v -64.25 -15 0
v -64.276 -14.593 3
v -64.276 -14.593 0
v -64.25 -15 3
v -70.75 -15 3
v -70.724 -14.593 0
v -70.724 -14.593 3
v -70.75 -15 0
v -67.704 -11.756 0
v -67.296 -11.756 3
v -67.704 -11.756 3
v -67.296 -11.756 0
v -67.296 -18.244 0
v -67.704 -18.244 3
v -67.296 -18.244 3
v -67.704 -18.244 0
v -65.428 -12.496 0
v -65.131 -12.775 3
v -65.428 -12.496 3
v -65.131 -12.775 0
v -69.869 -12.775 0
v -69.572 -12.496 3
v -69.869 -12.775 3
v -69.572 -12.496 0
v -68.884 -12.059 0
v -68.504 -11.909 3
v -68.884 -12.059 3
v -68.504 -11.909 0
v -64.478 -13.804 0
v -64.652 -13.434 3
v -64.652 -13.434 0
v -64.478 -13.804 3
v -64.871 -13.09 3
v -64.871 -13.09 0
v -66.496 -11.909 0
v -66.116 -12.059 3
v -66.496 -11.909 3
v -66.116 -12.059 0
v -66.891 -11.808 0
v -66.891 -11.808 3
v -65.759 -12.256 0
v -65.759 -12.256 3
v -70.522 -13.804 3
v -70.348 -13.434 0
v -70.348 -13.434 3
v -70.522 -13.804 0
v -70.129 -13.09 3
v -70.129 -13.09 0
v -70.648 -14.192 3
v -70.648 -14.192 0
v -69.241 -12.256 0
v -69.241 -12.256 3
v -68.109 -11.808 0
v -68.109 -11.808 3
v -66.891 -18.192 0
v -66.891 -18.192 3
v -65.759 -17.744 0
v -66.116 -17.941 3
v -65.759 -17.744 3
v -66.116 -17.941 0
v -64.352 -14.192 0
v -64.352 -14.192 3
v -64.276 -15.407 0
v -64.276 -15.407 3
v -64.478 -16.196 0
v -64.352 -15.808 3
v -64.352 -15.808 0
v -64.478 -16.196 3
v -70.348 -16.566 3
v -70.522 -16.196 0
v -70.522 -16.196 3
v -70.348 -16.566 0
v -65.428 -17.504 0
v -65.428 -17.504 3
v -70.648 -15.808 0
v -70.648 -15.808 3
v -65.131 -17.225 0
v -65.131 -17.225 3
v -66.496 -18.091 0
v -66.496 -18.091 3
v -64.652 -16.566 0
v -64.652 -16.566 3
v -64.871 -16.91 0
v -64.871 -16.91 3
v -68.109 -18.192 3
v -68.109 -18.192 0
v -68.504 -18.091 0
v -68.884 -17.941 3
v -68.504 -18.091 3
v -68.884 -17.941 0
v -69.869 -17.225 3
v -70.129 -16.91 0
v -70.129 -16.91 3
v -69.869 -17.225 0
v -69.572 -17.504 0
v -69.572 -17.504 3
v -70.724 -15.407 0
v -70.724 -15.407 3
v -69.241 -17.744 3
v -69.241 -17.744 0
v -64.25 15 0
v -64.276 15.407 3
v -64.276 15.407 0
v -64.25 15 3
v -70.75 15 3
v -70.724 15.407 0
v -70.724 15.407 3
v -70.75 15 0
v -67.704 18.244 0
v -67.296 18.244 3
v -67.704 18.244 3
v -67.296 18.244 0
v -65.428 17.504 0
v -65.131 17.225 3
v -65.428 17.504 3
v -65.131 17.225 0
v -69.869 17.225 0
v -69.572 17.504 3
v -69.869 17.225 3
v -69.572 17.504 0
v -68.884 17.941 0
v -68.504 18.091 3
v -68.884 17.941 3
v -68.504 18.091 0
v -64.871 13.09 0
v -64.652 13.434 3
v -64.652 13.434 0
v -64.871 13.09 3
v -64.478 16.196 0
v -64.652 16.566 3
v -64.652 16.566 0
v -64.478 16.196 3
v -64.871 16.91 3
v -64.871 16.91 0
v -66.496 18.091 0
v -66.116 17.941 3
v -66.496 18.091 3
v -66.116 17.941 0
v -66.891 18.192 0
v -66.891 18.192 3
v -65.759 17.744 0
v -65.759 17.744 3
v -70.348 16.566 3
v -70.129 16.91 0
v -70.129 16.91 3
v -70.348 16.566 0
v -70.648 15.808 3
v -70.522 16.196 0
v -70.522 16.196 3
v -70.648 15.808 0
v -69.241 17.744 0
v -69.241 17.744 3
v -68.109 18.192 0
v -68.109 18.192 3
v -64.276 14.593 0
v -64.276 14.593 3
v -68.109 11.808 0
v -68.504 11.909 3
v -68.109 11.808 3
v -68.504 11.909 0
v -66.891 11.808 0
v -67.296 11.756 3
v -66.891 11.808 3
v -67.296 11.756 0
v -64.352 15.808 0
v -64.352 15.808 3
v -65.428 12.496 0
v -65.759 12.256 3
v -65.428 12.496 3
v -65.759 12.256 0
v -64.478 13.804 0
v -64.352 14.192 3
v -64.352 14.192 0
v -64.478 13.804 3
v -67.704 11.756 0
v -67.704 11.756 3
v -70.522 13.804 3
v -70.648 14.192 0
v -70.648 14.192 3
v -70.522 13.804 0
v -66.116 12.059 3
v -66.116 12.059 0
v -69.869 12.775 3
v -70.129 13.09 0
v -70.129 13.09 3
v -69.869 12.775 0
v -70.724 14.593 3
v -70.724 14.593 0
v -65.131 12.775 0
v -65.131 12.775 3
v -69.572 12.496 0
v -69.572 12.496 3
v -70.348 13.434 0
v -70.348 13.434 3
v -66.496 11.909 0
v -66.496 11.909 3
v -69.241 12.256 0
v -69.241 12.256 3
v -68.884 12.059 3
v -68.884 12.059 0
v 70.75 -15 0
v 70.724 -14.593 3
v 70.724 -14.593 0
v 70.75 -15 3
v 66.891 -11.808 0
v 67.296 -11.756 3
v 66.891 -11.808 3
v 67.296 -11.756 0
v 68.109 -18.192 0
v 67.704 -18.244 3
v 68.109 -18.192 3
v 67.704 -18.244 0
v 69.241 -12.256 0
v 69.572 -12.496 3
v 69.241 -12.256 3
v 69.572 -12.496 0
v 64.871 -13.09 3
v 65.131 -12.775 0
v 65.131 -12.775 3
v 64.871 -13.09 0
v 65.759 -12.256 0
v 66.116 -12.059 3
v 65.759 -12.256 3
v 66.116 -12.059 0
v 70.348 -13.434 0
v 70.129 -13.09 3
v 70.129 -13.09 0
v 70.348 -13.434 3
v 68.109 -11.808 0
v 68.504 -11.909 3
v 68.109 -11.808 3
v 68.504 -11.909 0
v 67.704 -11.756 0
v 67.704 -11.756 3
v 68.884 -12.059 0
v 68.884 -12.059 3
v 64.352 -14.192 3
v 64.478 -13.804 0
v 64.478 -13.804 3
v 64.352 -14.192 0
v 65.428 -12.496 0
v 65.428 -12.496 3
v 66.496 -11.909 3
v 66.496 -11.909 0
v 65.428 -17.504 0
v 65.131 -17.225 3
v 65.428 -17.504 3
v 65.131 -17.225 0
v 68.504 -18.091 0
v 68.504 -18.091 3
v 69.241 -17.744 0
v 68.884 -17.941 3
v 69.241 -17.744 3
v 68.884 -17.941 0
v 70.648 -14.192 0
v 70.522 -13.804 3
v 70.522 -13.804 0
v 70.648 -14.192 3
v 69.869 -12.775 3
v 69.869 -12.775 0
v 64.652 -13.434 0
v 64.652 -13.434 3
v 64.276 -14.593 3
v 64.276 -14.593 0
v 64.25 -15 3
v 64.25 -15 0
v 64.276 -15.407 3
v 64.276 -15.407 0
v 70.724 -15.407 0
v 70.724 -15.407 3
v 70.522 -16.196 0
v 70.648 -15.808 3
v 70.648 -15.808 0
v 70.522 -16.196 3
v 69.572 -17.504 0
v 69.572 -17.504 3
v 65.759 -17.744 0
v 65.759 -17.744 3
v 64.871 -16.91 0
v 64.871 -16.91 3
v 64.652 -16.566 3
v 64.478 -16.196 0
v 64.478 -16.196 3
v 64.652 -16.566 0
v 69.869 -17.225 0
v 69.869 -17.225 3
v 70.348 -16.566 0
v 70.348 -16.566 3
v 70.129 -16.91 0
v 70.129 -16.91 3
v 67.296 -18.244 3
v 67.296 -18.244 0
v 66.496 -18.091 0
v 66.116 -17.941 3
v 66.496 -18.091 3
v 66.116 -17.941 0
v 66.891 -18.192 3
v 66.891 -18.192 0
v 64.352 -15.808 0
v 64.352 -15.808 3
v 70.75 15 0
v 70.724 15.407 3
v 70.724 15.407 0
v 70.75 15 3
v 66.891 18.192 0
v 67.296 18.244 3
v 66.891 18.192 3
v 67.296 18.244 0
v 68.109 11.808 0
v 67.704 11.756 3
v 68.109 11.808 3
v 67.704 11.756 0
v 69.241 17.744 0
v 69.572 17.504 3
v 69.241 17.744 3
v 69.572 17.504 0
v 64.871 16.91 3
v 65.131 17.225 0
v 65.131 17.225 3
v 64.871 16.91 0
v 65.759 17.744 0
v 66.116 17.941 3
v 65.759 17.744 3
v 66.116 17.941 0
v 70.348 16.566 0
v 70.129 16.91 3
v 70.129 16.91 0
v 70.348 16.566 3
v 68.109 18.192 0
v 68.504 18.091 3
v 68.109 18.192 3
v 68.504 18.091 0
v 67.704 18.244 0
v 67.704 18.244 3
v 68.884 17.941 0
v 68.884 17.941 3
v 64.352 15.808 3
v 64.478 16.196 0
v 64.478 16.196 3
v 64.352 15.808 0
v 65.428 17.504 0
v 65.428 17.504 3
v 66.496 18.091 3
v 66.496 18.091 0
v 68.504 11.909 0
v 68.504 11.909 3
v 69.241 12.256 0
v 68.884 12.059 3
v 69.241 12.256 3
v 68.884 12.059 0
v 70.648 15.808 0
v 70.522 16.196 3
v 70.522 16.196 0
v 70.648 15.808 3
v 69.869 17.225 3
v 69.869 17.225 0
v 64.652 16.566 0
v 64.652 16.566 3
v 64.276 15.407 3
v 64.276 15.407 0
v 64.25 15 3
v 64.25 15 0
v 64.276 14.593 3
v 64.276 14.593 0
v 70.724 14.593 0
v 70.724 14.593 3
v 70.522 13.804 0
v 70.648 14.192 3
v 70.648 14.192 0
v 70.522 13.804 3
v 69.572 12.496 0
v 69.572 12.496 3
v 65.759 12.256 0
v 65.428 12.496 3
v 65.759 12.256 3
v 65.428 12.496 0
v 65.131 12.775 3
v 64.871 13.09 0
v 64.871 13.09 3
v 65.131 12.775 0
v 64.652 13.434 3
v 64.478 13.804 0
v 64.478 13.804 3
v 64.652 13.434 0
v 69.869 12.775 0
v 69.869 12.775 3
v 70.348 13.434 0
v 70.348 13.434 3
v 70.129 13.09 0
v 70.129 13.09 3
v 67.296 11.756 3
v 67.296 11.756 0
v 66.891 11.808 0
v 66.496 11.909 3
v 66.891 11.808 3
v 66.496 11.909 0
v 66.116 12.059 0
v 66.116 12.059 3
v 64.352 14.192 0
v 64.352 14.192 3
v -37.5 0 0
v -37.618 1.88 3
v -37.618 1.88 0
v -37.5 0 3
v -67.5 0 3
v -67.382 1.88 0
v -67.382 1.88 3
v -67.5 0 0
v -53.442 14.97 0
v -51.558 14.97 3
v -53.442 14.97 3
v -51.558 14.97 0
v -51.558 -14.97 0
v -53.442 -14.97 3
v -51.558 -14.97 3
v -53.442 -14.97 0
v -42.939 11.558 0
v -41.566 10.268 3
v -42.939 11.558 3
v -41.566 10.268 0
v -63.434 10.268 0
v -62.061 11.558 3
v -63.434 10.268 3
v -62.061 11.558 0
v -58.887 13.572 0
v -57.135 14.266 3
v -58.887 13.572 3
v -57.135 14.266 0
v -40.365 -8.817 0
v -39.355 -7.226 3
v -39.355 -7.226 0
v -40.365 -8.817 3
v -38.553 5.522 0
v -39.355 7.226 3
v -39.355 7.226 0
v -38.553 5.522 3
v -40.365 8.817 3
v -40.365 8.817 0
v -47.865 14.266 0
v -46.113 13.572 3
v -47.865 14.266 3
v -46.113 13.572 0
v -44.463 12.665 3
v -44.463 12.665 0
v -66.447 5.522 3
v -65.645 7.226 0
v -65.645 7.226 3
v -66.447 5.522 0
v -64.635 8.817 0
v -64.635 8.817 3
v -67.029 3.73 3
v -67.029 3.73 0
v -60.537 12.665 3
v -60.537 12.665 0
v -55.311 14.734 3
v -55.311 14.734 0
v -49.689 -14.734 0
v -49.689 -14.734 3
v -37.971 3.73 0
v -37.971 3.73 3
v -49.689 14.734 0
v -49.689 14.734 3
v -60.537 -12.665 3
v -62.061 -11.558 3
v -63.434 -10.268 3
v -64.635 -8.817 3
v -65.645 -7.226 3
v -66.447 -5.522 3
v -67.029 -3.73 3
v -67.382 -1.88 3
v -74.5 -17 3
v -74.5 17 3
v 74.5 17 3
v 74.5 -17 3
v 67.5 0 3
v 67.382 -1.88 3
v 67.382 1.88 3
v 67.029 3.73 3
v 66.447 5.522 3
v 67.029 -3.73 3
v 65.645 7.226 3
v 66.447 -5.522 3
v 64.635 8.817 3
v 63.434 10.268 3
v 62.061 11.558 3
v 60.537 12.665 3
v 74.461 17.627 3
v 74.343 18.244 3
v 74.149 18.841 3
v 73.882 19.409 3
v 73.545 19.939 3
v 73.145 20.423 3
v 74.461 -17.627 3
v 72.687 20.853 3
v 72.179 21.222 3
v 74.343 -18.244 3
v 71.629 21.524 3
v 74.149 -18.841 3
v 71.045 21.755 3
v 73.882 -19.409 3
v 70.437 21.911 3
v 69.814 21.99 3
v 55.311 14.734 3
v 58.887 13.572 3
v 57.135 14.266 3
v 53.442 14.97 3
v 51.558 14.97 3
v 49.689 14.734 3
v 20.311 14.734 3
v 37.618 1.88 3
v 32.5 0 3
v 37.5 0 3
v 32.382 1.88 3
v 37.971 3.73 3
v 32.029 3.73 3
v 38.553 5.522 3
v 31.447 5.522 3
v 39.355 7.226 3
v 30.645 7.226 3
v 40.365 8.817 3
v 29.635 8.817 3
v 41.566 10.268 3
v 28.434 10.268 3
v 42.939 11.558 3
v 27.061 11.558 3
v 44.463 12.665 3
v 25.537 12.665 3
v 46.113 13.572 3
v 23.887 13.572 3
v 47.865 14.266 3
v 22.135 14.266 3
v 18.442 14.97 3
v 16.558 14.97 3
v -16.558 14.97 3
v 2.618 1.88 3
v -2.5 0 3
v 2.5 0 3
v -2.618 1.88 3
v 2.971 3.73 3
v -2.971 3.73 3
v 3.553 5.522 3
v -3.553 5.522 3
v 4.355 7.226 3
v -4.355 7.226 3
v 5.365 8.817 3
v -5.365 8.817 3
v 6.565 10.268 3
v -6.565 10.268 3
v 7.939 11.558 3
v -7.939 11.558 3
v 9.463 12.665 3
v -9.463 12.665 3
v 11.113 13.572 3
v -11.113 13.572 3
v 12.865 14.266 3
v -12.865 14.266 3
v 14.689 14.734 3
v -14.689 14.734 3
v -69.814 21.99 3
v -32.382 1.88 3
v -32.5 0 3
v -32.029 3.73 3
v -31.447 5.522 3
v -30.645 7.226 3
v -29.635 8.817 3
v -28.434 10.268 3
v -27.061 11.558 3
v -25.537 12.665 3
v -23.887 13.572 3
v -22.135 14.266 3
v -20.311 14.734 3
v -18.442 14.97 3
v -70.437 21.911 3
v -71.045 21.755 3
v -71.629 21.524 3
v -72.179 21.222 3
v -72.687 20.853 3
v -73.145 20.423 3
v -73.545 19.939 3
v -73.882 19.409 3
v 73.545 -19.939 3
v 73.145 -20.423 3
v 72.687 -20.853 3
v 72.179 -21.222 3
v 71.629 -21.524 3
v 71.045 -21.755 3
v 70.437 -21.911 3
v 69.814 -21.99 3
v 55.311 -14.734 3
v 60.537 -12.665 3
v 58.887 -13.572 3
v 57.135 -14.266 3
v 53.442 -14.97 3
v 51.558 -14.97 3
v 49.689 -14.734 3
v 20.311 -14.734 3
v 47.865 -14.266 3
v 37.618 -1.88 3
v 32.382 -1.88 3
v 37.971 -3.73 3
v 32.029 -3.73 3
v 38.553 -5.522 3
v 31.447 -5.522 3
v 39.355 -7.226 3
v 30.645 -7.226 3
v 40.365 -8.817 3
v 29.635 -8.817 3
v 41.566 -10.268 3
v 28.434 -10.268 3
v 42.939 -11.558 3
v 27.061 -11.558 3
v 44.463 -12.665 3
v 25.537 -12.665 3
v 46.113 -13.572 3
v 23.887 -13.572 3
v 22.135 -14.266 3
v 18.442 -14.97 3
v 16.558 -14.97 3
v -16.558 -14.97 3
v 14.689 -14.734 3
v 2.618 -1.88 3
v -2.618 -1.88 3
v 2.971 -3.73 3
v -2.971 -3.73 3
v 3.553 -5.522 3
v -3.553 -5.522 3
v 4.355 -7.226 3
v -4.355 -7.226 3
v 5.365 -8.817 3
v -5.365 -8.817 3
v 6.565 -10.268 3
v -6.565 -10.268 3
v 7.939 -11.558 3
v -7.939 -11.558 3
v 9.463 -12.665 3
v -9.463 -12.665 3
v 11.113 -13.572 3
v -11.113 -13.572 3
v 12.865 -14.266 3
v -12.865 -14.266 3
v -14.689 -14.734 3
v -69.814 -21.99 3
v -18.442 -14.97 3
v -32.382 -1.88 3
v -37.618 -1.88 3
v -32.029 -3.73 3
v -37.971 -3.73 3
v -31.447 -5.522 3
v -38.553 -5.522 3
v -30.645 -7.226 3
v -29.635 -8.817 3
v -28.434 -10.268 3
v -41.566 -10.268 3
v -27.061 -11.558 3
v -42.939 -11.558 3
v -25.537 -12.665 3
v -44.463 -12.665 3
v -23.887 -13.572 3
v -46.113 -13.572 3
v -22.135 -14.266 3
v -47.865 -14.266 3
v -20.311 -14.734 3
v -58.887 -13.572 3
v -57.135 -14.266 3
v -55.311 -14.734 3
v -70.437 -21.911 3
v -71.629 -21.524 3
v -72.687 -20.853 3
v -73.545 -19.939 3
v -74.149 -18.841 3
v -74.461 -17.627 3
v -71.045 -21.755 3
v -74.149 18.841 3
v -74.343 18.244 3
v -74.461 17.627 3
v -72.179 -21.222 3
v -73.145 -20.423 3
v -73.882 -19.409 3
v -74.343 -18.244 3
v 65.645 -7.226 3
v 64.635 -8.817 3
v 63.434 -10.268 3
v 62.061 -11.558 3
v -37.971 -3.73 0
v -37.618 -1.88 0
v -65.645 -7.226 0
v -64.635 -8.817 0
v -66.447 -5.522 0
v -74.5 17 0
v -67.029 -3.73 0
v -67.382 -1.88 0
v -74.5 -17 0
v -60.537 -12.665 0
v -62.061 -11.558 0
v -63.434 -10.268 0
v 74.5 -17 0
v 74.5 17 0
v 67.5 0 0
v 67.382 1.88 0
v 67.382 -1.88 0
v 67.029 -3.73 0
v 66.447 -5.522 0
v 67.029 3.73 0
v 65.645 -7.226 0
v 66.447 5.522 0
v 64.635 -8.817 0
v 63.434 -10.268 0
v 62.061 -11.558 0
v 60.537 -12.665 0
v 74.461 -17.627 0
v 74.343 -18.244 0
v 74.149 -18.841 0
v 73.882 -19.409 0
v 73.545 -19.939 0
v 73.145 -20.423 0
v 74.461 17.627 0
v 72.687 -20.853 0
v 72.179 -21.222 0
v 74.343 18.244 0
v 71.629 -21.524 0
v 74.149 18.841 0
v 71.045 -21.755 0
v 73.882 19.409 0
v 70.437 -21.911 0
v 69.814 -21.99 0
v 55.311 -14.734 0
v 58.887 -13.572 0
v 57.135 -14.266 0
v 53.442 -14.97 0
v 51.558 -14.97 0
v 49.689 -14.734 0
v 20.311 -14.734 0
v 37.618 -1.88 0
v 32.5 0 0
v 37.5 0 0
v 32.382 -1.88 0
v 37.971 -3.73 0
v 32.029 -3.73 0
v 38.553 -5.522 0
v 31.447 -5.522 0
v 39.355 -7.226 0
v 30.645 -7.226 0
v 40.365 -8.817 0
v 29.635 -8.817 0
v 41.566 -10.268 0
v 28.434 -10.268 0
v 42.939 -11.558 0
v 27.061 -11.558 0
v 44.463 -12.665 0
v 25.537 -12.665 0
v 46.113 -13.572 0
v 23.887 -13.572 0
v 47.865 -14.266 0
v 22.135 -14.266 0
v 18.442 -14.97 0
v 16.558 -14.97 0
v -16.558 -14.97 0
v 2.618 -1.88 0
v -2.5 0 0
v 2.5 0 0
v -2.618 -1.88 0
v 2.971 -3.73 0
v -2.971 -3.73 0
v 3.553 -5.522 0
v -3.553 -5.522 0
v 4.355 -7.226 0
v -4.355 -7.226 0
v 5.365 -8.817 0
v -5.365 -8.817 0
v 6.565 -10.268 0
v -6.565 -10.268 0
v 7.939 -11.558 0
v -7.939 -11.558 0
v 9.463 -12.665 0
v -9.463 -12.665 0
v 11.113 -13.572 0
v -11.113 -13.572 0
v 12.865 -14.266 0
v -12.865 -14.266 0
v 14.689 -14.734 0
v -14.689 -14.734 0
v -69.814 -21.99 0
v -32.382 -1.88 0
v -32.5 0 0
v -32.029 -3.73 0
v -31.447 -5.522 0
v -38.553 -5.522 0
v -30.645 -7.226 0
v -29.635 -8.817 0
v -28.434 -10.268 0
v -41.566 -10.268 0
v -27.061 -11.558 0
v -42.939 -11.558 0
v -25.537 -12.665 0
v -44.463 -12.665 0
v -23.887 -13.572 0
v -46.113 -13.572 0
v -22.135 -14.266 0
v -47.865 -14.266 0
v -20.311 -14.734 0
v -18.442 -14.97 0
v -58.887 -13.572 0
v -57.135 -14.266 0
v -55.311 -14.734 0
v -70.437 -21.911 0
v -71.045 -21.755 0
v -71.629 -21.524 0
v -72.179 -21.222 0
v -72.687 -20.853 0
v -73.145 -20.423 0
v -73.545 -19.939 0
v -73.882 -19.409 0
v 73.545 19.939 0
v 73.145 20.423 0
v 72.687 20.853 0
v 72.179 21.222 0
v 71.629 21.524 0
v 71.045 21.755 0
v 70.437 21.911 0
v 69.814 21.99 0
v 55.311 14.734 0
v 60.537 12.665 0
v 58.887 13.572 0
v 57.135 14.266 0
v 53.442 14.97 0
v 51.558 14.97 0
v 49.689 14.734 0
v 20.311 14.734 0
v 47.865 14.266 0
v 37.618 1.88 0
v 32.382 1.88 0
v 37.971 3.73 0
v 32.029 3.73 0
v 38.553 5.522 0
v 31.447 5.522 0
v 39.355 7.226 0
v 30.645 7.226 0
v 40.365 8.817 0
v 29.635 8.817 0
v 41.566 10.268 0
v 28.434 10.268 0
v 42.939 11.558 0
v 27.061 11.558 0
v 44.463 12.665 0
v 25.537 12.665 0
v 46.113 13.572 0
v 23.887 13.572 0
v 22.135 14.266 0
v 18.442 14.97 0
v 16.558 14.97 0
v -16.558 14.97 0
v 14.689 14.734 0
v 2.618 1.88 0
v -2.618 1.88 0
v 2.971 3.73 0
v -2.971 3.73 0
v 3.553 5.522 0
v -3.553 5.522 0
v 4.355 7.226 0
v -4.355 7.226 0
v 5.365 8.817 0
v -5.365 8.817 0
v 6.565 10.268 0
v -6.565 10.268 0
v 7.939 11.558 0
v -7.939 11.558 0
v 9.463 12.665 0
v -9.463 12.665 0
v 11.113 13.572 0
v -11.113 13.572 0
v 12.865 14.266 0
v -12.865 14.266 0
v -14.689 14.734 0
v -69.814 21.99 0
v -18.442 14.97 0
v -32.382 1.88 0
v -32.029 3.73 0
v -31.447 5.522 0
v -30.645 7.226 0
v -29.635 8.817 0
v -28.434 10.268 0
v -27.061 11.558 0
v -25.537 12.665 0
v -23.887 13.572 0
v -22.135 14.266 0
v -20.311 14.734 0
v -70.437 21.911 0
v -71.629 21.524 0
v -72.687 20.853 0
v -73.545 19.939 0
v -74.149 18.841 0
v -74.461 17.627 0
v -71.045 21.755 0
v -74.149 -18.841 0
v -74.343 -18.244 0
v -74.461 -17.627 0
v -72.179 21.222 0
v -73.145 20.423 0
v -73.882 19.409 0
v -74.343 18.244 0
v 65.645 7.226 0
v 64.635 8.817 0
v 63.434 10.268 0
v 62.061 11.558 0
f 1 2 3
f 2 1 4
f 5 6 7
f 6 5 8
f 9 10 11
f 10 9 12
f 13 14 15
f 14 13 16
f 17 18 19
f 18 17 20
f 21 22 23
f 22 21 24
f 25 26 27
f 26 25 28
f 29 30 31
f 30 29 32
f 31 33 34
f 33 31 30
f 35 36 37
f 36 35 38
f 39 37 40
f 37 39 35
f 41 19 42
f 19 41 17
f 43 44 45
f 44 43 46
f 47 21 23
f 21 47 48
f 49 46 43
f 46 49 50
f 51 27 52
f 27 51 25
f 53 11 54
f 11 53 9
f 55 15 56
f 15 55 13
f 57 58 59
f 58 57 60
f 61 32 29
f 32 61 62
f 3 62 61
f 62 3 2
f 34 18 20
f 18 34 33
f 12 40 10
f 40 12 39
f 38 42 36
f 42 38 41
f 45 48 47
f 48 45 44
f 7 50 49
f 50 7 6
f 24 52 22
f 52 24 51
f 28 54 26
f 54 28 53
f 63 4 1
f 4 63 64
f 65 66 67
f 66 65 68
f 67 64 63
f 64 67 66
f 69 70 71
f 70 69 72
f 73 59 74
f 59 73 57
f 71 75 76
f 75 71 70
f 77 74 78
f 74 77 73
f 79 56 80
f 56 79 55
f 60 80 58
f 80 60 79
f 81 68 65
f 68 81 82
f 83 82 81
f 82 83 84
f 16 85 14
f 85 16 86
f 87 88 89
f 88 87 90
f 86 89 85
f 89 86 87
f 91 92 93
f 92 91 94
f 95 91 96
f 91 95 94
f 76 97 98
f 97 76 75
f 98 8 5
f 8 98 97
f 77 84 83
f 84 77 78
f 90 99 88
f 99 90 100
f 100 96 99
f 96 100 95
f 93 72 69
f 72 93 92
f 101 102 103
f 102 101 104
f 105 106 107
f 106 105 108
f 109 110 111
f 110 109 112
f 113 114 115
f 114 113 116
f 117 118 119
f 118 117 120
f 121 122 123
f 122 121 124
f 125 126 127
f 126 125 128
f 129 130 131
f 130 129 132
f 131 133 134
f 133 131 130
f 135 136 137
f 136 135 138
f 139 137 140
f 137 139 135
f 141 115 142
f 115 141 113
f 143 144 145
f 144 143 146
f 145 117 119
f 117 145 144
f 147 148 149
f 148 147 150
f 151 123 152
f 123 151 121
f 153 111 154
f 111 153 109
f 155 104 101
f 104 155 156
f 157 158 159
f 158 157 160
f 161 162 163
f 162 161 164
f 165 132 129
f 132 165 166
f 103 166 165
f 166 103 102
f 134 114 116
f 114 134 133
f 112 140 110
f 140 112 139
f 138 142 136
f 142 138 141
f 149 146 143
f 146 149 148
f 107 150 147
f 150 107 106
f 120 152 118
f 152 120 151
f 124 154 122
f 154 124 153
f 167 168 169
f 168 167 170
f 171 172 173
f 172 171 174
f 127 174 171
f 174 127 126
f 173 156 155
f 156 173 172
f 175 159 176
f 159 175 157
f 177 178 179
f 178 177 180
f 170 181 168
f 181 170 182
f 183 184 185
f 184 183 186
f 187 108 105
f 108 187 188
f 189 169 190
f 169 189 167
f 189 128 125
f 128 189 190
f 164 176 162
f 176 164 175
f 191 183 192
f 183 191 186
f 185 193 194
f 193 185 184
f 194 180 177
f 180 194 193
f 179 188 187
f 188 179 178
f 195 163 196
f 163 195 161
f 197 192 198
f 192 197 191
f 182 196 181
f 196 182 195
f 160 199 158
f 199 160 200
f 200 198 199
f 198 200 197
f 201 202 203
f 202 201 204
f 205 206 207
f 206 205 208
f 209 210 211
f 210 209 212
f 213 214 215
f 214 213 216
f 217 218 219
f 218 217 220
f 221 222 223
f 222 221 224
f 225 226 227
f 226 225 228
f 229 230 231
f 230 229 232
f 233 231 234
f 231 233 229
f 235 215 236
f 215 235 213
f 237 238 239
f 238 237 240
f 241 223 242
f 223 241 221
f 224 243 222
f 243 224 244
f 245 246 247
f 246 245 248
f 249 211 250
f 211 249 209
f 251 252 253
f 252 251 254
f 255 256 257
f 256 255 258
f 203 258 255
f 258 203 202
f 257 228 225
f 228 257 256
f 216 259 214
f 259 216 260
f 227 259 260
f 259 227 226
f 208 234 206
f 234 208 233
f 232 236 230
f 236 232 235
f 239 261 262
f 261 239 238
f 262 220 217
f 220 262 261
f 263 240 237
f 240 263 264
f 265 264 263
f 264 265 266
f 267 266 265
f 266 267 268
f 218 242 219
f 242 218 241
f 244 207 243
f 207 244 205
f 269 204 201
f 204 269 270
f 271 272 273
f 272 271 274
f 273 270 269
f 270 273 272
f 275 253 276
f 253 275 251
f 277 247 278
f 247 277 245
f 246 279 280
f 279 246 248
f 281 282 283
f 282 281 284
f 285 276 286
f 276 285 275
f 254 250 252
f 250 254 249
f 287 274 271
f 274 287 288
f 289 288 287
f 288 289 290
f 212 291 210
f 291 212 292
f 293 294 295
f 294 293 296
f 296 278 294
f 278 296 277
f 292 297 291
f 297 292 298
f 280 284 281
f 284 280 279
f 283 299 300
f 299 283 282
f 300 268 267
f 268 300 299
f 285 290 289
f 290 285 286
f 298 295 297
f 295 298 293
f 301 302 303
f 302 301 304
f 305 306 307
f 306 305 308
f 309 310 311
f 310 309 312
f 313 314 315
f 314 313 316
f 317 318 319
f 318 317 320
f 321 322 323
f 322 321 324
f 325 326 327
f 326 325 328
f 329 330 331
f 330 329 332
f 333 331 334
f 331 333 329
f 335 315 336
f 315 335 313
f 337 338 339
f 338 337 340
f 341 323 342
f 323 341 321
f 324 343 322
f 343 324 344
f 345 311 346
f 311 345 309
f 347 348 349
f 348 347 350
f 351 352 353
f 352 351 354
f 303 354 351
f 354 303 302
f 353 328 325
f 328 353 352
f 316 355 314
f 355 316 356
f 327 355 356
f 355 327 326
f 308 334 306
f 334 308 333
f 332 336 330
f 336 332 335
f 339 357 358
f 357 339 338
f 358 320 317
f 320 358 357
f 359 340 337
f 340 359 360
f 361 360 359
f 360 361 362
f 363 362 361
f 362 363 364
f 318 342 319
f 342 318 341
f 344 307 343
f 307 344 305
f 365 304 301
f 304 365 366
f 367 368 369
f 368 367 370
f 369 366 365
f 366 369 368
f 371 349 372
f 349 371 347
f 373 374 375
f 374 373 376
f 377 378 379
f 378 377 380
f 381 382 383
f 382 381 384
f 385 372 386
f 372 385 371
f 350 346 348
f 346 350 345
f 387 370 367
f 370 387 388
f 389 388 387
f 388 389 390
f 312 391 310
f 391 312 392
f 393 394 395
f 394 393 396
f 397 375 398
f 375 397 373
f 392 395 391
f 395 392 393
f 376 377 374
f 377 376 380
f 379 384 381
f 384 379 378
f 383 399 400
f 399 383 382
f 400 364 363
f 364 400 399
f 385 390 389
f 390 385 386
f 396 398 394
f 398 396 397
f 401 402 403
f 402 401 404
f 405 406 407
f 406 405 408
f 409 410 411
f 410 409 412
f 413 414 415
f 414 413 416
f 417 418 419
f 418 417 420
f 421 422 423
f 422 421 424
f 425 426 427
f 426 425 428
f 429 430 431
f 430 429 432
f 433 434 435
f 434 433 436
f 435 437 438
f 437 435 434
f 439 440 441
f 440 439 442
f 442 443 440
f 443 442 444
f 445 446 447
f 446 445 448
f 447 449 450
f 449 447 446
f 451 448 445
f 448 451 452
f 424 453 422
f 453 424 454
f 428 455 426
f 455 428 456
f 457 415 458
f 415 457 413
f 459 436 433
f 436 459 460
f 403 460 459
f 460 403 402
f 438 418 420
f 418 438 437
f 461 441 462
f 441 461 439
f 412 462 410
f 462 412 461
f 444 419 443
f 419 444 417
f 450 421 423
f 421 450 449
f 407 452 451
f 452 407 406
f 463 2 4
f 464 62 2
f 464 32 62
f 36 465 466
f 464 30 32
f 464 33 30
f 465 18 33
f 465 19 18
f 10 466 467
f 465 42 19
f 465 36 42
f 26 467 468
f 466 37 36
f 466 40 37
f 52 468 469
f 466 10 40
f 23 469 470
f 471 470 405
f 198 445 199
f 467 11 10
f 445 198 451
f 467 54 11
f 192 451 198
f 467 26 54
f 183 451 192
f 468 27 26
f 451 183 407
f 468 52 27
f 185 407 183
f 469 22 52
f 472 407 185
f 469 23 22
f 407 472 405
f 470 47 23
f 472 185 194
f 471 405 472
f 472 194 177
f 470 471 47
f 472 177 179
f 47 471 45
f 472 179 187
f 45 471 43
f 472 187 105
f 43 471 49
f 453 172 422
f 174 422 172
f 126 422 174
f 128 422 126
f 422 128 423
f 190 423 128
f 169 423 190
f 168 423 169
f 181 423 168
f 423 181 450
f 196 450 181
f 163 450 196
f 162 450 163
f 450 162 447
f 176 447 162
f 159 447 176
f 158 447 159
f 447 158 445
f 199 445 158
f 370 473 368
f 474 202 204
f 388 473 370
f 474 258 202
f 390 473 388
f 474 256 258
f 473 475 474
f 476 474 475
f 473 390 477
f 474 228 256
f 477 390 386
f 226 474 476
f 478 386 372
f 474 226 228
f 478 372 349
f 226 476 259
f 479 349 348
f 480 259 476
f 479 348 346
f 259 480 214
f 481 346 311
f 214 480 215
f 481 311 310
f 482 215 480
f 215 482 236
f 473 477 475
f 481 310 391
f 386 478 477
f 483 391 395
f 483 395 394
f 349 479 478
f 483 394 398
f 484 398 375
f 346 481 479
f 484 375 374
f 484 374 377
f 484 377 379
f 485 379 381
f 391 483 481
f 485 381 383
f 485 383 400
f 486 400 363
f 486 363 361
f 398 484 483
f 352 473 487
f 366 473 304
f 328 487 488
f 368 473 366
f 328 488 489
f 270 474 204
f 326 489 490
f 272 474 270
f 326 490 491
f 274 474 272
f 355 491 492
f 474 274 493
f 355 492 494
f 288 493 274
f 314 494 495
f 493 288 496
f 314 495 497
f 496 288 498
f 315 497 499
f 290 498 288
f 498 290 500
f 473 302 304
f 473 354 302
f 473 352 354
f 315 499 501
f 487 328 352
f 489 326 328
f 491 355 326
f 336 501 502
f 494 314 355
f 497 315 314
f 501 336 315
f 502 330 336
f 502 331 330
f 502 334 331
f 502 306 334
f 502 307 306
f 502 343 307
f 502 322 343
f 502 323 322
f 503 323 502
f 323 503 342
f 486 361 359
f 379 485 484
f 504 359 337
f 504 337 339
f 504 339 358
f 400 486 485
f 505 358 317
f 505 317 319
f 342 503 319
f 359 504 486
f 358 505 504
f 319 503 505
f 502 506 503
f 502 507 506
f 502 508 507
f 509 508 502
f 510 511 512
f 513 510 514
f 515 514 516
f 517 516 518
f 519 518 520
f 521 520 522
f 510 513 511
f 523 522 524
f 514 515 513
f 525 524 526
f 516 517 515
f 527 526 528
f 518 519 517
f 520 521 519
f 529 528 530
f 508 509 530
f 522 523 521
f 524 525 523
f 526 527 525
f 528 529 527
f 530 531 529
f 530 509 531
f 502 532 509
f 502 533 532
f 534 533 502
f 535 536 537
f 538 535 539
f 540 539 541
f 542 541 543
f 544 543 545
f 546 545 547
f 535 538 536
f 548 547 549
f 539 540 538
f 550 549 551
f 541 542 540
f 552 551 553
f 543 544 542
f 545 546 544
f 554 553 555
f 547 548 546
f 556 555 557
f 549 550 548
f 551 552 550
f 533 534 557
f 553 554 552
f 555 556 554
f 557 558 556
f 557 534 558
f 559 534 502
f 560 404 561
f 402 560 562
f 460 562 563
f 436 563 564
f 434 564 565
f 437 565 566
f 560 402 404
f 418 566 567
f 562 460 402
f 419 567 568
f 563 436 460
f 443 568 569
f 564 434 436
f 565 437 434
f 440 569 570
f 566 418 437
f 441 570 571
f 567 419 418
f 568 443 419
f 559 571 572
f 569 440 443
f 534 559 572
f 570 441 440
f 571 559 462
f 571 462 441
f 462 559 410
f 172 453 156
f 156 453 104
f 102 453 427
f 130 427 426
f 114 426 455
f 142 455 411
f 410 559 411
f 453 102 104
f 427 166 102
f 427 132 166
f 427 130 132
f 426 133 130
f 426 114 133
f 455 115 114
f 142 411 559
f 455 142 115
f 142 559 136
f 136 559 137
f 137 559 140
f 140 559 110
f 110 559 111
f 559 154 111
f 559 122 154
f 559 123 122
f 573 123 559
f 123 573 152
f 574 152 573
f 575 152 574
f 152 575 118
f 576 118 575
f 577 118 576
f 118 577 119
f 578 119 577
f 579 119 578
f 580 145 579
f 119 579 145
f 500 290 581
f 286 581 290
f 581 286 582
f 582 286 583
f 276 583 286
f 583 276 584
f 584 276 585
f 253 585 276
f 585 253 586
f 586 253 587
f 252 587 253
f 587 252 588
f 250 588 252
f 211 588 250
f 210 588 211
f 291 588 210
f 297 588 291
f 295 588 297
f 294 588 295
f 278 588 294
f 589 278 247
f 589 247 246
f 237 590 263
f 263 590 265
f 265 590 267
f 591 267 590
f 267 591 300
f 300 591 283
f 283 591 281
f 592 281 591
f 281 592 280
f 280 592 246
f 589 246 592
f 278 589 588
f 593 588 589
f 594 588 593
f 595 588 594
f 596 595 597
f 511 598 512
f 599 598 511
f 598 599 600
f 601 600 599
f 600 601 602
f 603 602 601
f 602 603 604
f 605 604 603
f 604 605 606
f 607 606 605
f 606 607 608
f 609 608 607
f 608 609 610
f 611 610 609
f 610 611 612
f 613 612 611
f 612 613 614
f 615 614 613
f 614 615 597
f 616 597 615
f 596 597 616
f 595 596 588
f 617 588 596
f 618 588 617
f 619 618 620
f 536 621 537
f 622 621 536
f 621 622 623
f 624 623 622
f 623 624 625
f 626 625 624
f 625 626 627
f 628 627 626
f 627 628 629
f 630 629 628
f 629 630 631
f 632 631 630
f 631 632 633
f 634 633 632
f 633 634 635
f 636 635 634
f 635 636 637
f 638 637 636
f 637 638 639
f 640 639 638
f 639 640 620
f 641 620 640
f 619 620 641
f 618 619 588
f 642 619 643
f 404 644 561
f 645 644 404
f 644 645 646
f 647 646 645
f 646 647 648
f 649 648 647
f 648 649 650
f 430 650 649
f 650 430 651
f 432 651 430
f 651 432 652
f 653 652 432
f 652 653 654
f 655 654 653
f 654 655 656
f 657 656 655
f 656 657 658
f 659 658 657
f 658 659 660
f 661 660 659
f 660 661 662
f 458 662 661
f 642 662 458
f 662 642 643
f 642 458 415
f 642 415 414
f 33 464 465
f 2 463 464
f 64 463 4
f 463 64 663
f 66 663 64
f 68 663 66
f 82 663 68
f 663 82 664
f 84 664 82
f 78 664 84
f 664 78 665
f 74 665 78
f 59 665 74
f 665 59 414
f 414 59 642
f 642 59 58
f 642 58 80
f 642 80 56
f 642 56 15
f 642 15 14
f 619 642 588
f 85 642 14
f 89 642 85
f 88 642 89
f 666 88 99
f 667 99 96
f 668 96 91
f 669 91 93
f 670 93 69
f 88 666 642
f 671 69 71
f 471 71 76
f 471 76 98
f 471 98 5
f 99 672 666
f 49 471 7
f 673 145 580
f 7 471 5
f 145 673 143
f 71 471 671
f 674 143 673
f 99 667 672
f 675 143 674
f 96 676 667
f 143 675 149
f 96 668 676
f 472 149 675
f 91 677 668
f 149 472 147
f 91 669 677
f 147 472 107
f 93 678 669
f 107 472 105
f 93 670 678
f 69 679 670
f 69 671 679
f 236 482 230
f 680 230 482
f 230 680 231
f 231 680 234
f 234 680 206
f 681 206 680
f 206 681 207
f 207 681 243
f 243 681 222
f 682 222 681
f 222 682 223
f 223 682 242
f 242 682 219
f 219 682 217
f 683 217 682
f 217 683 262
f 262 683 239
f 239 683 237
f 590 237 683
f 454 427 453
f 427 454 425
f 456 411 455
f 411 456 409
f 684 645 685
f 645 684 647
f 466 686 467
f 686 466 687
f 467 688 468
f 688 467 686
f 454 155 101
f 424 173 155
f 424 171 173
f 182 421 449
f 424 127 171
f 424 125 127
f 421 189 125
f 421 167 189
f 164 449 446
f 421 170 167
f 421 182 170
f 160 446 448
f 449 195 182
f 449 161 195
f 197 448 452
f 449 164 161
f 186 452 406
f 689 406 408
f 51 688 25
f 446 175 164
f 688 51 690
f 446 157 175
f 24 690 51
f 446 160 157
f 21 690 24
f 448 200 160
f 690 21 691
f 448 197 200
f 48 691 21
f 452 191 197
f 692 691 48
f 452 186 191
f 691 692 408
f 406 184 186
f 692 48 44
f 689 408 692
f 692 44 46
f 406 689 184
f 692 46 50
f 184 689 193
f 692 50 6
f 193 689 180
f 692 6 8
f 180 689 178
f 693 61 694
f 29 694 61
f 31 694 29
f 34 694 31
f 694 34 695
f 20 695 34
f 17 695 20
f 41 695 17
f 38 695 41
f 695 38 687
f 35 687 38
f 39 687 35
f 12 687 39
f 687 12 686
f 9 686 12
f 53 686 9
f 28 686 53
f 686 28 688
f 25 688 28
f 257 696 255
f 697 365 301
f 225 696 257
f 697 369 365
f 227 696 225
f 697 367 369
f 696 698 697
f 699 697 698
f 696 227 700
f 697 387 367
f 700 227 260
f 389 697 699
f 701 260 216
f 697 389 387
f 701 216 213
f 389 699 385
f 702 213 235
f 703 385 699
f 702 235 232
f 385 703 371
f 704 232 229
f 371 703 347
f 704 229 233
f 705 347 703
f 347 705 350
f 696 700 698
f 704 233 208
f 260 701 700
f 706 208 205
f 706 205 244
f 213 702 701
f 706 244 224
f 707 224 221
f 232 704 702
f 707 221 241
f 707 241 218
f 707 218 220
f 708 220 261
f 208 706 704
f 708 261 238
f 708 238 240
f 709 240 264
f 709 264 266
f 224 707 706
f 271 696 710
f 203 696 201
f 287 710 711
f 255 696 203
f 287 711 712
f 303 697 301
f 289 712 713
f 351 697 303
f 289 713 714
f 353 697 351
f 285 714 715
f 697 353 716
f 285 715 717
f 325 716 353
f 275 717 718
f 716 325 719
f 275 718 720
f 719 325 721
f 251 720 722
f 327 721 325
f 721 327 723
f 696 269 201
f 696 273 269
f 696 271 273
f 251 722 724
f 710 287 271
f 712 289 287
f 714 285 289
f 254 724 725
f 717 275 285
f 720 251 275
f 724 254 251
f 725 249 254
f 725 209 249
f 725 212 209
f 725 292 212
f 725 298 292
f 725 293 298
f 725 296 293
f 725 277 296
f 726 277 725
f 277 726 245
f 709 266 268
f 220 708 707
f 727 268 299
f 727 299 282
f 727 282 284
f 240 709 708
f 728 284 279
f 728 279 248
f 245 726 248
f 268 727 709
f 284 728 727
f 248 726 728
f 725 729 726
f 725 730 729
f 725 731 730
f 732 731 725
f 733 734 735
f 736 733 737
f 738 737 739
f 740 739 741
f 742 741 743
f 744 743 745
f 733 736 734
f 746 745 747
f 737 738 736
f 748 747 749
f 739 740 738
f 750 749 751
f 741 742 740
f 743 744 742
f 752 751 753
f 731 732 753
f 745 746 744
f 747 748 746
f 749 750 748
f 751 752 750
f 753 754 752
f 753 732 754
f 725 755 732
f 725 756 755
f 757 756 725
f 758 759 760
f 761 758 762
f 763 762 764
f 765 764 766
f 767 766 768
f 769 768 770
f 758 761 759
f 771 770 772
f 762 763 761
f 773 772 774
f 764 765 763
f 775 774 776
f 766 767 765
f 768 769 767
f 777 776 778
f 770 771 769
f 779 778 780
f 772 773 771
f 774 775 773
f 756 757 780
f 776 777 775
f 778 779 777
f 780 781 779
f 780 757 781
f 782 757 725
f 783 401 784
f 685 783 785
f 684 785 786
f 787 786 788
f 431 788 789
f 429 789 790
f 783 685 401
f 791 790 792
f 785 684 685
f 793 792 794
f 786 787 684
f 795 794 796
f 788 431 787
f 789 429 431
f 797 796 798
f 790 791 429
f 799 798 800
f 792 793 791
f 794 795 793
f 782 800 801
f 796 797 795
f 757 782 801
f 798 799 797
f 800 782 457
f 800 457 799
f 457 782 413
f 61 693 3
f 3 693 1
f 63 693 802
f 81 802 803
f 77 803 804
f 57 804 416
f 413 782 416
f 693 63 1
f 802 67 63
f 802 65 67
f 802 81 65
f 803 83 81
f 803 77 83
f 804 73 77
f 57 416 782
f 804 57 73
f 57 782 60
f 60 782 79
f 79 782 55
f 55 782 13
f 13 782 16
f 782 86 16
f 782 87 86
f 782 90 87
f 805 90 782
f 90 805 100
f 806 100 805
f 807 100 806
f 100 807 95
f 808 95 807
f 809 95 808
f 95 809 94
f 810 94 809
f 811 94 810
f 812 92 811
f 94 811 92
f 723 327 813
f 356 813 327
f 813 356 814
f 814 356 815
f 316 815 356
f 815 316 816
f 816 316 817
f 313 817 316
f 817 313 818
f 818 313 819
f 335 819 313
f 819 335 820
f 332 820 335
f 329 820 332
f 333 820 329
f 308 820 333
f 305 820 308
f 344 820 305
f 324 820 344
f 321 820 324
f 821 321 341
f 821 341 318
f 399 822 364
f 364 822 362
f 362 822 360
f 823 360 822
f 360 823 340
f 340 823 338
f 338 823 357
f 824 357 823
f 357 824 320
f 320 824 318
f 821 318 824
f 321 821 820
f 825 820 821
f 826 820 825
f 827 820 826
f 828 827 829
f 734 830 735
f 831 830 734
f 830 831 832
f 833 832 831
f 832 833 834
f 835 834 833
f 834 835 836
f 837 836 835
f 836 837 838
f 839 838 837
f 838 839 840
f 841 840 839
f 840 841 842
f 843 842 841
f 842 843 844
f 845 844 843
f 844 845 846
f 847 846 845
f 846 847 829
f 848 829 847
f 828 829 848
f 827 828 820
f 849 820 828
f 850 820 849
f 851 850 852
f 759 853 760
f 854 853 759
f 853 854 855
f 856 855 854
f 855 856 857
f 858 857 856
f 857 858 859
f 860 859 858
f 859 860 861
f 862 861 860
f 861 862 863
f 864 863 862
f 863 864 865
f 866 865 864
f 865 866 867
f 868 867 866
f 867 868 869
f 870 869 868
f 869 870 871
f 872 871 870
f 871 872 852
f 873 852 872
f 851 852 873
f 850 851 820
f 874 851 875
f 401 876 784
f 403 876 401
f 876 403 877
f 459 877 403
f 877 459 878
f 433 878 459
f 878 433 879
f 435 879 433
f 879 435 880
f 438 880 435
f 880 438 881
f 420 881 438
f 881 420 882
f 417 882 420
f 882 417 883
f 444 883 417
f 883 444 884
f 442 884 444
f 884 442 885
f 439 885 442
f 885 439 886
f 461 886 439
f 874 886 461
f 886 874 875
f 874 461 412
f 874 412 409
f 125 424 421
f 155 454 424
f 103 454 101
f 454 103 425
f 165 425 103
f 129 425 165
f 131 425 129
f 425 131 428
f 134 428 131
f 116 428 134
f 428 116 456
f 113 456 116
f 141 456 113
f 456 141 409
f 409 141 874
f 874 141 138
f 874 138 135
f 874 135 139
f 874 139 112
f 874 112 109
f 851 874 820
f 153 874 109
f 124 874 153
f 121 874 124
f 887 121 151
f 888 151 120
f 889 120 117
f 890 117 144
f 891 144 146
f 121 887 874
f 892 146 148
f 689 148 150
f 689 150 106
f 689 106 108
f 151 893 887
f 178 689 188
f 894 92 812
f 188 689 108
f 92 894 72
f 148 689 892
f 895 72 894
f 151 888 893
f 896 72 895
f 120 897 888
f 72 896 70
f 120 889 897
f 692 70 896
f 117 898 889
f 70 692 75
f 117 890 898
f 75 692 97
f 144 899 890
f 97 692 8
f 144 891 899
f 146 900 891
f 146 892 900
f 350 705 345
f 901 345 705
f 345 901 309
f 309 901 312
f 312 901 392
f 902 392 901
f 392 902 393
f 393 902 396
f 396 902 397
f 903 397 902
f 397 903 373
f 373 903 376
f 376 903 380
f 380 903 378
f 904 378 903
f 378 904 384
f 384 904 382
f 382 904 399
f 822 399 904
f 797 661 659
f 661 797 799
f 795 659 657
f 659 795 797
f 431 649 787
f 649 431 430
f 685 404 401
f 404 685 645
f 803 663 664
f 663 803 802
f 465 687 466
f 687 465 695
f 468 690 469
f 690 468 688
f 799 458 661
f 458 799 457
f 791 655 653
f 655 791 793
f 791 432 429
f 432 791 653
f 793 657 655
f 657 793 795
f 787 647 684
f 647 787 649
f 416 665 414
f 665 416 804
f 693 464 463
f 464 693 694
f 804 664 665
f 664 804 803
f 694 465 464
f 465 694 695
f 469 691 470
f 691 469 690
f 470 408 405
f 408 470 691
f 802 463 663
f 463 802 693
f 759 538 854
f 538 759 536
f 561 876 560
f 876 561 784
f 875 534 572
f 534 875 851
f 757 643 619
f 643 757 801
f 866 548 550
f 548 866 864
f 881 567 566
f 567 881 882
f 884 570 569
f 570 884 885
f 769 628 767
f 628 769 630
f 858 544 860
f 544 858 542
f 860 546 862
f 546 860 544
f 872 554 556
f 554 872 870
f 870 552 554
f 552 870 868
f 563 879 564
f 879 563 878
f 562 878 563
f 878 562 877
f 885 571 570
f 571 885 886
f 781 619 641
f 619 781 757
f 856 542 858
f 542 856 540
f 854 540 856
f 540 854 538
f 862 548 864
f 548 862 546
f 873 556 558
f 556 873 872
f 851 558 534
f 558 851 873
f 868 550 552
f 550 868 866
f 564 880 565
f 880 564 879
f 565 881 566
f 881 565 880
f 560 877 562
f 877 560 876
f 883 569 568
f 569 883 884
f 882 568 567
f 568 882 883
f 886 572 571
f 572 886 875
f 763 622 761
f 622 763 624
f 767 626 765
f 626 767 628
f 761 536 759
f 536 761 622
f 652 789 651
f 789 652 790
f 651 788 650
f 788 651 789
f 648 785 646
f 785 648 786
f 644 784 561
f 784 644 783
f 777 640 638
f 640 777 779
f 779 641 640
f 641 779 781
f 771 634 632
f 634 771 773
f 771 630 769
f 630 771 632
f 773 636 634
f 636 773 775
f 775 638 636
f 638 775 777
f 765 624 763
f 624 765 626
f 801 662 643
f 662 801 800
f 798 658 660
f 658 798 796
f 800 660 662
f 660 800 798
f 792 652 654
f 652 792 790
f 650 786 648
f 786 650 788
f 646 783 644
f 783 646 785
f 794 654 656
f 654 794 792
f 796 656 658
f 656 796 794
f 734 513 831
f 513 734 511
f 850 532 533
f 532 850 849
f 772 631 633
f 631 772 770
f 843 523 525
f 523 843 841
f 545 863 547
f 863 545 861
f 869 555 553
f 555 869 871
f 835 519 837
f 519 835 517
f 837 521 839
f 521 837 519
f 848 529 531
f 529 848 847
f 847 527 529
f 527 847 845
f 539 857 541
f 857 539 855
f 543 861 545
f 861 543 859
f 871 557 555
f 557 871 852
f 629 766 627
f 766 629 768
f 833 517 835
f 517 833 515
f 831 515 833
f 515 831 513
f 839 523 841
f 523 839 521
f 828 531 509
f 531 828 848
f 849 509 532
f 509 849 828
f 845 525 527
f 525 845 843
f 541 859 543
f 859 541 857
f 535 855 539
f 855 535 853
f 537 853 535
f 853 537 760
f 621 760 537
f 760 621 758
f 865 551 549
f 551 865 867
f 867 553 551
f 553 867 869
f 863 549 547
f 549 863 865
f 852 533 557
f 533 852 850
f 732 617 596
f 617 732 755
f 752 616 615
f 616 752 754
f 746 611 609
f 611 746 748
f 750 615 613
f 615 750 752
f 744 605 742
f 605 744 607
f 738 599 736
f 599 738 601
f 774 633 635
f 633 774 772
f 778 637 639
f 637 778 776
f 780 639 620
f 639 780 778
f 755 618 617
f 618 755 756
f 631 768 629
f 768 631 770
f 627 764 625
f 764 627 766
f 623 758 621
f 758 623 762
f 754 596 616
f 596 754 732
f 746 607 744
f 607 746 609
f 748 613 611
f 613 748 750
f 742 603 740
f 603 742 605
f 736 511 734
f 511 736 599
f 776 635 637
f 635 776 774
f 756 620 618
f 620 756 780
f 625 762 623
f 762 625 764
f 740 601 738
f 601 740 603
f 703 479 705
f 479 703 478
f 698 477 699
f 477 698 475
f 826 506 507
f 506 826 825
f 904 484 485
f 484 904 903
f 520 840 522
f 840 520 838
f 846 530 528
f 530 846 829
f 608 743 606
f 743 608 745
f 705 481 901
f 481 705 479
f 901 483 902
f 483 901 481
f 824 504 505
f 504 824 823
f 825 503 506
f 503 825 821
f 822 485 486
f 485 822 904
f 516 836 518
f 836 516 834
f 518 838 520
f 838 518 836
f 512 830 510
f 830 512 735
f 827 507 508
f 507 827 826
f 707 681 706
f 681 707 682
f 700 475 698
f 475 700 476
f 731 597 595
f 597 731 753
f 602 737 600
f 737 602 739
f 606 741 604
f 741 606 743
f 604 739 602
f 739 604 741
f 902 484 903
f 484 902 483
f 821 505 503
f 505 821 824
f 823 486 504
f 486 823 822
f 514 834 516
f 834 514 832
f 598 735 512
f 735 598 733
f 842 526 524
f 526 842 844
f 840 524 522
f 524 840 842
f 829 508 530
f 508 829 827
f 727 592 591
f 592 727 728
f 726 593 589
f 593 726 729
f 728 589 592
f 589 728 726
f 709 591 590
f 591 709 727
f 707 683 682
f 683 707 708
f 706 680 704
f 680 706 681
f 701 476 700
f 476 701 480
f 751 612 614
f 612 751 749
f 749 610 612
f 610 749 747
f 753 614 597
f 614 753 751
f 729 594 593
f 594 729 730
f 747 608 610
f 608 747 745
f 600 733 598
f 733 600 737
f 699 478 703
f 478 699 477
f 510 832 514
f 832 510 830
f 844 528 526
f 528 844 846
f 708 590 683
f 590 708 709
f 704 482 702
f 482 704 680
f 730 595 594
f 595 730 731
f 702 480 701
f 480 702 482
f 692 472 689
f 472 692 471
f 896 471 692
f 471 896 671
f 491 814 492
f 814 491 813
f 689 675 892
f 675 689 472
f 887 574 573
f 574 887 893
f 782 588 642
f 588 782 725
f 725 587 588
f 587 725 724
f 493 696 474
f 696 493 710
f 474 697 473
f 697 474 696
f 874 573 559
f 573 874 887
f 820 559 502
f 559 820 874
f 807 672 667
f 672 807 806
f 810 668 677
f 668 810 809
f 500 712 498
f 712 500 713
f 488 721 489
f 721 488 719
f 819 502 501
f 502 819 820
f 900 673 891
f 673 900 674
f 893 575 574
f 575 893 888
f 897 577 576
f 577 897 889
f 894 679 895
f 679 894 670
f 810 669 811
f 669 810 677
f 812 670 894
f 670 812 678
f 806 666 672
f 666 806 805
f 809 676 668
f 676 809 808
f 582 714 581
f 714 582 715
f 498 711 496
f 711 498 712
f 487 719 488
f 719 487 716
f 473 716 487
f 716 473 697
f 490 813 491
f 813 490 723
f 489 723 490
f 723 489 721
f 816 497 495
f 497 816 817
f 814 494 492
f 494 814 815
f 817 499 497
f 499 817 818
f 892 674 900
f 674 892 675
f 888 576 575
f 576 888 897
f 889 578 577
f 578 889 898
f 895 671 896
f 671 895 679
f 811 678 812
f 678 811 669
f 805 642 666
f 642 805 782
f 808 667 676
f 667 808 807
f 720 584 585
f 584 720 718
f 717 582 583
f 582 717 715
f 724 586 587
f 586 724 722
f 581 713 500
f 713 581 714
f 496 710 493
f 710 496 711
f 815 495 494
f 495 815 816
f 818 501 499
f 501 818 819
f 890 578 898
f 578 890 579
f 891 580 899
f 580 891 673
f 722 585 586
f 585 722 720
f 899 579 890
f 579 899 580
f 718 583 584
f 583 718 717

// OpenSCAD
$fn = 50;


difference() {
	union() {
		hull() {
			translate(v = [-69.5000000000, 17.0000000000, 0]) {
				cylinder(h = 3, r = 5);
			}
			translate(v = [69.5000000000, 17.0000000000, 0]) {
				cylinder(h = 3, r = 5);
			}
			translate(v = [-69.5000000000, -17.0000000000, 0]) {
				cylinder(h = 3, r = 5);
			}
			translate(v = [69.5000000000, -17.0000000000, 0]) {
				cylinder(h = 3, r = 5);
			}
		}
	}
	union() {
		#translate(v = [-67.5000000000, -15.0000000000, -100.0000000000]) {
			cylinder(h = 200, r = 3.2500000000);
		}
		#translate(v = [-67.5000000000, 15.0000000000, -100.0000000000]) {
			cylinder(h = 200, r = 3.2500000000);
		}
		#translate(v = [67.5000000000, -15.0000000000, -100.0000000000]) {
			cylinder(h = 200, r = 3.2500000000);
		}
		#translate(v = [67.5000000000, 15.0000000000, -100.0000000000]) {
			cylinder(h = 200, r = 3.2500000000);
		}
		#translate(v = [-52.5000000000, 0, 0]) {
			cylinder(h = 3, r = 15.0000000000);
		}
		#translate(v = [-17.5000000000, 0, 0]) {
			cylinder(h = 3, r = 15.0000000000);
		}
		#translate(v = [17.5000000000, 0, 0]) {
			cylinder(h = 3, r = 15.0000000000);
		}
		#translate(v = [52.5000000000, 0, 0]) {
			cylinder(h = 3, r = 15.0000000000);
		}
	}
}
